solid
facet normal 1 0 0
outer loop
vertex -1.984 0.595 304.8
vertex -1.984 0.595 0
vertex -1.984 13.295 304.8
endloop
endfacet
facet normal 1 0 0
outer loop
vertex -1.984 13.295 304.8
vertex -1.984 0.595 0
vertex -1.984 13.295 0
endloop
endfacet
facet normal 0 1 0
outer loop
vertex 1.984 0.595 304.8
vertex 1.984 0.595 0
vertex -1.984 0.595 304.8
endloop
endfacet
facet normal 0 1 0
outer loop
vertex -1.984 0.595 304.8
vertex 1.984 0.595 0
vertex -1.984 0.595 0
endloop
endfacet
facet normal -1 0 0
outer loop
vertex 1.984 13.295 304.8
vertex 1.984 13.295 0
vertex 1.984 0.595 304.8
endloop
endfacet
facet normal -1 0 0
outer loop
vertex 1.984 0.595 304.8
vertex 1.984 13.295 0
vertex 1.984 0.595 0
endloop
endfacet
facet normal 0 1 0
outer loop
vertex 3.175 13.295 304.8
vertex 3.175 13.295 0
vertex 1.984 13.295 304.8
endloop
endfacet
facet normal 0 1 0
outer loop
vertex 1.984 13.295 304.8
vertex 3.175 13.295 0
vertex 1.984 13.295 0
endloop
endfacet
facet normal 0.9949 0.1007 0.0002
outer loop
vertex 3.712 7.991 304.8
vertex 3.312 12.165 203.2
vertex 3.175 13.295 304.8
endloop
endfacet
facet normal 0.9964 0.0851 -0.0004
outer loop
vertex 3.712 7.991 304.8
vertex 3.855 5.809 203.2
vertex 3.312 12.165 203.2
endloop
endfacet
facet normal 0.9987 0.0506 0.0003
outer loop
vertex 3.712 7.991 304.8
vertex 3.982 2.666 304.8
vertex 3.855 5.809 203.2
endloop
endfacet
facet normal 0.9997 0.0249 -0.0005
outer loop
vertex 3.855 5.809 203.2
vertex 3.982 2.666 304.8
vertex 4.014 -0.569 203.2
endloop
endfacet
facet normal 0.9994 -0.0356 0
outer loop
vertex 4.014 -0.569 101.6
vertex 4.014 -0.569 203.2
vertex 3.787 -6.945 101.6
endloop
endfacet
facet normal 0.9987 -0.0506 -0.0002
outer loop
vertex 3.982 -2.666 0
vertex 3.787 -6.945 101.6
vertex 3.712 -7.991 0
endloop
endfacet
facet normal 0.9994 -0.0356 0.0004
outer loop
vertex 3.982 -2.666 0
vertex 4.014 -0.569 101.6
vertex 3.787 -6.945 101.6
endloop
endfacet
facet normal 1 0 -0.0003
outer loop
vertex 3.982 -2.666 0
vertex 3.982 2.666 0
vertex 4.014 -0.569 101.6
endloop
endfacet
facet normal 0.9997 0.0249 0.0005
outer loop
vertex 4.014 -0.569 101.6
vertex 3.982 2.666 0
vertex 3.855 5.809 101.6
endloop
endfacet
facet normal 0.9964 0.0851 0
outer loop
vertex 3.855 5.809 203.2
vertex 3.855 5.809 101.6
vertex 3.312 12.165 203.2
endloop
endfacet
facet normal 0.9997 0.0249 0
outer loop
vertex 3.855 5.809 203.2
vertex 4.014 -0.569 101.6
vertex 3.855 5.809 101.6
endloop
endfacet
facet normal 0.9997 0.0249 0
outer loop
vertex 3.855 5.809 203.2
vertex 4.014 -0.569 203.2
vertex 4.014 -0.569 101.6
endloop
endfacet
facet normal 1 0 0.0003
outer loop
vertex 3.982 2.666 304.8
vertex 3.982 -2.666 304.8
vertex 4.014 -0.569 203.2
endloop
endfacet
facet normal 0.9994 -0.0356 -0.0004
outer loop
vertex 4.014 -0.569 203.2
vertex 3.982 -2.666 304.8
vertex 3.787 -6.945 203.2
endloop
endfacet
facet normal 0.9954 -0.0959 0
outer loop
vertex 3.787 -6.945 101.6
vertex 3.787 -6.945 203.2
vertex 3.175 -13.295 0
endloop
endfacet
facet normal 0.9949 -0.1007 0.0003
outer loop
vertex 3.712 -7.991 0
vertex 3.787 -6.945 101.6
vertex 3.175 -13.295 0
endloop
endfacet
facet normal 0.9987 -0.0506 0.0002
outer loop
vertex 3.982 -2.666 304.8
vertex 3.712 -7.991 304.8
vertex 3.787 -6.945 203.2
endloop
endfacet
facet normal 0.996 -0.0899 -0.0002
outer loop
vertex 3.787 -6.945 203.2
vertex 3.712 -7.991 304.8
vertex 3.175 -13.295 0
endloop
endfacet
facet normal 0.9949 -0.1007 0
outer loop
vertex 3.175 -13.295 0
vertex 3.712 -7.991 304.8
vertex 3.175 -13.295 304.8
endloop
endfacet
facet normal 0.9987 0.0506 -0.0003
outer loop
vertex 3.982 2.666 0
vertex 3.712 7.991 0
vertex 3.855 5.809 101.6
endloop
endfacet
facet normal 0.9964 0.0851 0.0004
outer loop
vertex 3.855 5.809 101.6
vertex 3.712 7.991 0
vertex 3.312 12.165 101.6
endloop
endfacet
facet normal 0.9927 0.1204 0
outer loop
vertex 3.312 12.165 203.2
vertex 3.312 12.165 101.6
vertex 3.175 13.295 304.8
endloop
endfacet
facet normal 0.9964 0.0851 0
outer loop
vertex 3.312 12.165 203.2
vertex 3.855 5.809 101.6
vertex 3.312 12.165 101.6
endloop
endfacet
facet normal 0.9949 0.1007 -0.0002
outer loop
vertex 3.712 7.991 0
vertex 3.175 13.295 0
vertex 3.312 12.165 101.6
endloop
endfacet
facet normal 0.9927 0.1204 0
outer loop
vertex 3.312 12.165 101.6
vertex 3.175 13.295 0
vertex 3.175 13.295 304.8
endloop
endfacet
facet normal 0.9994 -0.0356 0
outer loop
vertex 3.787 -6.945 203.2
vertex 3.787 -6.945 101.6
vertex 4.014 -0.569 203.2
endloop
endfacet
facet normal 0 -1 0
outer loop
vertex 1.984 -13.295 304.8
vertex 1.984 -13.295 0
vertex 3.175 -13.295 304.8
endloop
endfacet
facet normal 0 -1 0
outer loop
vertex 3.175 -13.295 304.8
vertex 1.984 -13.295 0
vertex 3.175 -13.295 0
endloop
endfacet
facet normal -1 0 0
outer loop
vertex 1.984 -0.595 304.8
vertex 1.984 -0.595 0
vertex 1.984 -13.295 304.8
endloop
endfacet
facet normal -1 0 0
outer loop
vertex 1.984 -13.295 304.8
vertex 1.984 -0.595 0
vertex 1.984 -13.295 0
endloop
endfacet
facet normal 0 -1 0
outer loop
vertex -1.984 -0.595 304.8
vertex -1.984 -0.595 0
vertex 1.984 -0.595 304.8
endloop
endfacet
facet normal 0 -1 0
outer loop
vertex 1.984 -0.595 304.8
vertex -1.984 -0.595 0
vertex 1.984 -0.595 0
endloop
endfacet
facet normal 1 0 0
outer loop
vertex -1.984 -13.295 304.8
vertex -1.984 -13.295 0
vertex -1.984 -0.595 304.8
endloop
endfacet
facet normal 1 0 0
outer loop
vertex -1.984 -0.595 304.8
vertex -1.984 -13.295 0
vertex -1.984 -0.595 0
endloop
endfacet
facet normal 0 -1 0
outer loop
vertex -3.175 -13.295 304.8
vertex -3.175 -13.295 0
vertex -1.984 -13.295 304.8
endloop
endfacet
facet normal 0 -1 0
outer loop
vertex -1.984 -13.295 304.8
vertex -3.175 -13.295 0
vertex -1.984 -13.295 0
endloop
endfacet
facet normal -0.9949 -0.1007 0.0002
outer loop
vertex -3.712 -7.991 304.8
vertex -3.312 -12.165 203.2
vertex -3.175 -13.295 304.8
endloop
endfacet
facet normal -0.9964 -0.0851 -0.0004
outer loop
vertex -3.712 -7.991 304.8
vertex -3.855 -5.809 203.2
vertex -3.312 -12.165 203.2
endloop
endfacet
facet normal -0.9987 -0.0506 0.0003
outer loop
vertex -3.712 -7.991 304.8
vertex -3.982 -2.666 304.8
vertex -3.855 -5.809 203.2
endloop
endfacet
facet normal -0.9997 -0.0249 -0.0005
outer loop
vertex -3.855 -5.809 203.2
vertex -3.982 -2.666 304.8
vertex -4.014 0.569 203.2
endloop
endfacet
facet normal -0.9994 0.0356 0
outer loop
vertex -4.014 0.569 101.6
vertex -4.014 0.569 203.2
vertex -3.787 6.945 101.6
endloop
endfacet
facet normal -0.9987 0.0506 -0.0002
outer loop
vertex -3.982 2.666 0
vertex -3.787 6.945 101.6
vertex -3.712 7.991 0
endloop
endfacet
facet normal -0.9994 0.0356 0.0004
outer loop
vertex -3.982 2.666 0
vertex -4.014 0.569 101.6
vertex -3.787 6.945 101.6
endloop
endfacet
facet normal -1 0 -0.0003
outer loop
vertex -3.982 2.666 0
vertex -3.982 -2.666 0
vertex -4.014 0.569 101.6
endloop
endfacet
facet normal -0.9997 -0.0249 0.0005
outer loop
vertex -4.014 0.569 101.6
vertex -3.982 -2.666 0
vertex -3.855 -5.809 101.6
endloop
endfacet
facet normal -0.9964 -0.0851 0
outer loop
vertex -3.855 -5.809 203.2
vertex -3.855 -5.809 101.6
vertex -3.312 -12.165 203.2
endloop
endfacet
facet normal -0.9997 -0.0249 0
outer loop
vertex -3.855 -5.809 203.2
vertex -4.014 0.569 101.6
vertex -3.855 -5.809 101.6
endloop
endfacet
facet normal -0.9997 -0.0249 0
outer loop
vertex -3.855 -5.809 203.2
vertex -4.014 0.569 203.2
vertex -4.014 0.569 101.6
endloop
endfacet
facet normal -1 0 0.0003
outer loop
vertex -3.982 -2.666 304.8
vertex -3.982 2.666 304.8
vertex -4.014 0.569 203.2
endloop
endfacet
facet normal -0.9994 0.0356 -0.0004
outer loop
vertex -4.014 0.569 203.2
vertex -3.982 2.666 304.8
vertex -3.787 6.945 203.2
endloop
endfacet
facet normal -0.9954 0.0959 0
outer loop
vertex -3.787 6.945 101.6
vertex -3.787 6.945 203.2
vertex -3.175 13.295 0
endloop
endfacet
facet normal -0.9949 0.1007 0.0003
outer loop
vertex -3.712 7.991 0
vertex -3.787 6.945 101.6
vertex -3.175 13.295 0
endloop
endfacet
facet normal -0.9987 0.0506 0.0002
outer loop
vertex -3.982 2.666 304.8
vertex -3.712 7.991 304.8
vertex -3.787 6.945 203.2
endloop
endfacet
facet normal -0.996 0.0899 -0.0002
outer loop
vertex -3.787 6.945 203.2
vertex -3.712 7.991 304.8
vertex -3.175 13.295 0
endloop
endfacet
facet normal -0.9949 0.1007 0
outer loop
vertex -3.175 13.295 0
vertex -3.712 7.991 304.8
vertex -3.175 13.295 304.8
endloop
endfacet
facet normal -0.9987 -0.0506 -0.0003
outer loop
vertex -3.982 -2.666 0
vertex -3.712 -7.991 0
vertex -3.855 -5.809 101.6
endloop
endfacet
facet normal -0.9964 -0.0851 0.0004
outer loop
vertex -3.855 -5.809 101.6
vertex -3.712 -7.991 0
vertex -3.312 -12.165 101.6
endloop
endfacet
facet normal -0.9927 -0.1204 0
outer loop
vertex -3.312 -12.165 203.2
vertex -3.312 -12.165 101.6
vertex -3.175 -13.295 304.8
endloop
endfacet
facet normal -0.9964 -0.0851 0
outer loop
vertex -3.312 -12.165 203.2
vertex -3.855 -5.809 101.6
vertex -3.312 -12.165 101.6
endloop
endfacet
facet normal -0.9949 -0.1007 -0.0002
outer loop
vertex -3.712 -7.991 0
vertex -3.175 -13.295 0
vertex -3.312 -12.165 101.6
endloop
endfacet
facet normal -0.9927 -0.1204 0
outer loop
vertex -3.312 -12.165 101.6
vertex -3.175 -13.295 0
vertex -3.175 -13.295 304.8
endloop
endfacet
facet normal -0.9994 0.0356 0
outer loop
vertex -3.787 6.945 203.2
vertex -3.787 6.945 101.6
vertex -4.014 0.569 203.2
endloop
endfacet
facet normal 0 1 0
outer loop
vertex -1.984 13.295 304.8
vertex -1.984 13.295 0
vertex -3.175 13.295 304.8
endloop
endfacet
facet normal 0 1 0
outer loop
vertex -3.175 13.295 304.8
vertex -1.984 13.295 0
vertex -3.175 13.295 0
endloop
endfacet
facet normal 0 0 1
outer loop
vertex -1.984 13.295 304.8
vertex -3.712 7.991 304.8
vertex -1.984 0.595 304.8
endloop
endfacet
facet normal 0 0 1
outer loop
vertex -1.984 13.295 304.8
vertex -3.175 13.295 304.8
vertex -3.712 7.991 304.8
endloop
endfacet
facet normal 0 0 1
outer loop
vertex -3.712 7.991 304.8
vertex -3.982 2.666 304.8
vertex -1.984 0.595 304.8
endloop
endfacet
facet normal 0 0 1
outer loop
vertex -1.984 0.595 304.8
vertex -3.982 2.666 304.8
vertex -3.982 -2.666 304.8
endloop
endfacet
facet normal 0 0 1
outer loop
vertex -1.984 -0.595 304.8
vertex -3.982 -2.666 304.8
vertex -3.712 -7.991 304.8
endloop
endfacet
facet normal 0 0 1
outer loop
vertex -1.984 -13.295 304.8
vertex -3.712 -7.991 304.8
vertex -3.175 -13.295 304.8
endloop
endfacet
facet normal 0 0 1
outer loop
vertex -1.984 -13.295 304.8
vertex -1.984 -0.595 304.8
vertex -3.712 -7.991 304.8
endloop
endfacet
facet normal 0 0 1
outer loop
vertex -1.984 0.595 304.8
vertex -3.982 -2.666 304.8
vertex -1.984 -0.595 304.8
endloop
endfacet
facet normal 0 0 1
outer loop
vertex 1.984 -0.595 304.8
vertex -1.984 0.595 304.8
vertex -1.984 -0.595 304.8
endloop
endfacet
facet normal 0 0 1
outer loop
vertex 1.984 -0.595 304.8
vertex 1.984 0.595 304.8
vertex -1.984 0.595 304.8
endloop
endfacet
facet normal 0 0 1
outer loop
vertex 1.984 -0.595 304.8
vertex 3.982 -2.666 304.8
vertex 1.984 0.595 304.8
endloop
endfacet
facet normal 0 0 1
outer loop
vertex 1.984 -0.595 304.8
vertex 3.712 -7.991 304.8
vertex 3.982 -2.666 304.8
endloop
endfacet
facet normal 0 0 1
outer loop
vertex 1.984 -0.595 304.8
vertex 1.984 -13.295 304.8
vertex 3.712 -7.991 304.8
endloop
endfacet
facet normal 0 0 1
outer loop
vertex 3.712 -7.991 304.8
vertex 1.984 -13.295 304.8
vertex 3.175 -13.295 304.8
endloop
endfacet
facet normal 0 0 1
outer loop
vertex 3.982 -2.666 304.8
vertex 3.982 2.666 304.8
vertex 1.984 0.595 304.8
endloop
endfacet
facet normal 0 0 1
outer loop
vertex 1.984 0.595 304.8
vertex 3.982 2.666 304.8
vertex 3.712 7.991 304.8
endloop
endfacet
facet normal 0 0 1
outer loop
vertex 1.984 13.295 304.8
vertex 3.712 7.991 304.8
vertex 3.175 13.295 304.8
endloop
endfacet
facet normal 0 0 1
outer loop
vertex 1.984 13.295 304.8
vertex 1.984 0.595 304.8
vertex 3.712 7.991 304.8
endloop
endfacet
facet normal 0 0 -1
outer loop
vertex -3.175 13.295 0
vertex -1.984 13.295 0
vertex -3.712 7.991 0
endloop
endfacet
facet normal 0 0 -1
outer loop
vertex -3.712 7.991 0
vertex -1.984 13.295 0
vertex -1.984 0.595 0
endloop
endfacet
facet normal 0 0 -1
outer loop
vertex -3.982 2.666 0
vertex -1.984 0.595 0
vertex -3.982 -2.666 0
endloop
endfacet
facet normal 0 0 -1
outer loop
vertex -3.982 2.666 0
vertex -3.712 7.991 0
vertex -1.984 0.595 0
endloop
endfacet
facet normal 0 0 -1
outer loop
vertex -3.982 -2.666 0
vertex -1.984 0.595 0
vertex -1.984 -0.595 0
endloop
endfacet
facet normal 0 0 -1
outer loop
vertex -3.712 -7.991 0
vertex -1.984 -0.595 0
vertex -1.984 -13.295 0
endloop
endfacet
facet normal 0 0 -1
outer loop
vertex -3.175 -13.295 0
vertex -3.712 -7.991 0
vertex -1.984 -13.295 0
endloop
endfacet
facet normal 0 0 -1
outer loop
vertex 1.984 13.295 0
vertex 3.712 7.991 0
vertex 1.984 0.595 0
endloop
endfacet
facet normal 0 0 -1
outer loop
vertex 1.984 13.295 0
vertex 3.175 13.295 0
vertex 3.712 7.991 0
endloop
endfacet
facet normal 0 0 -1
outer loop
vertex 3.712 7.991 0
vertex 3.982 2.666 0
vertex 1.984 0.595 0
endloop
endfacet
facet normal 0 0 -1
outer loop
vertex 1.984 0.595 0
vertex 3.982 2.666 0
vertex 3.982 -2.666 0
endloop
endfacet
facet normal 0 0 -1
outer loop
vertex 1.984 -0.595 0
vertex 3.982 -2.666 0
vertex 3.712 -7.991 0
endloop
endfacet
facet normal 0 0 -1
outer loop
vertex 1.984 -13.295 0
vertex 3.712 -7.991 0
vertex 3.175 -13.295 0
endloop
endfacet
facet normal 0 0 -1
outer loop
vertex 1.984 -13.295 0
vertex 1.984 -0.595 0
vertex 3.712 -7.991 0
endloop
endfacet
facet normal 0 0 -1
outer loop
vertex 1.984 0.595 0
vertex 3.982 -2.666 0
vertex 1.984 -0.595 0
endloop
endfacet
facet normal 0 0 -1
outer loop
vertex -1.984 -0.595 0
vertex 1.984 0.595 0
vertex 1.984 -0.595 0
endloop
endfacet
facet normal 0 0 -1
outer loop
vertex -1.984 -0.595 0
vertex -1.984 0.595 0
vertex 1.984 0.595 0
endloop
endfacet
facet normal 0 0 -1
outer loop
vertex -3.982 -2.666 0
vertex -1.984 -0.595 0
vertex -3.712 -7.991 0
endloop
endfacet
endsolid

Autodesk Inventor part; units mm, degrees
ref_plane "YZ Plane" through (0, 0, 0) normal (1, 0, 0) x (0, 1, 0)
ref_plane "XZ Plane" through (0, 0, 0) normal (0, 1, 0) x (-1, 0, 0)
ref_plane "XY Plane" through (0, 0, 0) normal (0, 0, 1) x (1, 0, 0)
sketch "Sketch1" plane through (0, 0, 0) normal (0, 0, 1) x (1, 0, 0)
  arc A0 (-3.175, 13.2953) -> (-3.175, -13.2953) centre (101.6, 0) ccw
  arc A1 (3.175, -13.2953) -> (3.175, 13.2953) centre (-101.6, 0) ccw
  line L0 (-1.9844, 0.5953) -> (1.9844, 0.5953)
  line L1 (-1.9844, -0.5953) -> (1.9844, -0.5953)
  line L2 (1.9844, 13.2953) -> (1.9844, 0.5953)
  line L3 (1.9844, -0.5953) -> (1.9844, -13.2953)
  line L4 (-1.9844, 13.2953) -> (-1.9844, 0.5953)
  line L5 (-1.9844, -0.5953) -> (-1.9844, -13.2953)
  line L6 (-3.175, 13.2953) -> (-1.9844, 13.2953)
  line L7 (1.9844, 13.2953) -> (3.175, 13.2953)
  line L8 (-3.175, -13.2953) -> (-1.9844, -13.2953)
  line L9 (1.9844, -13.2953) -> (3.175, -13.2953)
  point P0 (0, 0)
  dimension "d4" = 1.9844
  dimension "d5" = 3.9688
  dimension "d6" = 0.5953
  dimension "d7" = 1.1906
  dimension "d8" = 13.2953
  dimension "d9" = 26.5906
  dimension "d10" = 101.6
  dimension "d12" = 1.1906
extrude "Extrusion1" add sketch "Sketch1" along normal blind 304.8
equation "\"d6\" = 0.5 * d7"
equation "\"d12\" = d7"
equation "\"d1\" = 2 * d0"
equation "\"d0\" = 13.295313"
properties part number "GE-12088-02"
